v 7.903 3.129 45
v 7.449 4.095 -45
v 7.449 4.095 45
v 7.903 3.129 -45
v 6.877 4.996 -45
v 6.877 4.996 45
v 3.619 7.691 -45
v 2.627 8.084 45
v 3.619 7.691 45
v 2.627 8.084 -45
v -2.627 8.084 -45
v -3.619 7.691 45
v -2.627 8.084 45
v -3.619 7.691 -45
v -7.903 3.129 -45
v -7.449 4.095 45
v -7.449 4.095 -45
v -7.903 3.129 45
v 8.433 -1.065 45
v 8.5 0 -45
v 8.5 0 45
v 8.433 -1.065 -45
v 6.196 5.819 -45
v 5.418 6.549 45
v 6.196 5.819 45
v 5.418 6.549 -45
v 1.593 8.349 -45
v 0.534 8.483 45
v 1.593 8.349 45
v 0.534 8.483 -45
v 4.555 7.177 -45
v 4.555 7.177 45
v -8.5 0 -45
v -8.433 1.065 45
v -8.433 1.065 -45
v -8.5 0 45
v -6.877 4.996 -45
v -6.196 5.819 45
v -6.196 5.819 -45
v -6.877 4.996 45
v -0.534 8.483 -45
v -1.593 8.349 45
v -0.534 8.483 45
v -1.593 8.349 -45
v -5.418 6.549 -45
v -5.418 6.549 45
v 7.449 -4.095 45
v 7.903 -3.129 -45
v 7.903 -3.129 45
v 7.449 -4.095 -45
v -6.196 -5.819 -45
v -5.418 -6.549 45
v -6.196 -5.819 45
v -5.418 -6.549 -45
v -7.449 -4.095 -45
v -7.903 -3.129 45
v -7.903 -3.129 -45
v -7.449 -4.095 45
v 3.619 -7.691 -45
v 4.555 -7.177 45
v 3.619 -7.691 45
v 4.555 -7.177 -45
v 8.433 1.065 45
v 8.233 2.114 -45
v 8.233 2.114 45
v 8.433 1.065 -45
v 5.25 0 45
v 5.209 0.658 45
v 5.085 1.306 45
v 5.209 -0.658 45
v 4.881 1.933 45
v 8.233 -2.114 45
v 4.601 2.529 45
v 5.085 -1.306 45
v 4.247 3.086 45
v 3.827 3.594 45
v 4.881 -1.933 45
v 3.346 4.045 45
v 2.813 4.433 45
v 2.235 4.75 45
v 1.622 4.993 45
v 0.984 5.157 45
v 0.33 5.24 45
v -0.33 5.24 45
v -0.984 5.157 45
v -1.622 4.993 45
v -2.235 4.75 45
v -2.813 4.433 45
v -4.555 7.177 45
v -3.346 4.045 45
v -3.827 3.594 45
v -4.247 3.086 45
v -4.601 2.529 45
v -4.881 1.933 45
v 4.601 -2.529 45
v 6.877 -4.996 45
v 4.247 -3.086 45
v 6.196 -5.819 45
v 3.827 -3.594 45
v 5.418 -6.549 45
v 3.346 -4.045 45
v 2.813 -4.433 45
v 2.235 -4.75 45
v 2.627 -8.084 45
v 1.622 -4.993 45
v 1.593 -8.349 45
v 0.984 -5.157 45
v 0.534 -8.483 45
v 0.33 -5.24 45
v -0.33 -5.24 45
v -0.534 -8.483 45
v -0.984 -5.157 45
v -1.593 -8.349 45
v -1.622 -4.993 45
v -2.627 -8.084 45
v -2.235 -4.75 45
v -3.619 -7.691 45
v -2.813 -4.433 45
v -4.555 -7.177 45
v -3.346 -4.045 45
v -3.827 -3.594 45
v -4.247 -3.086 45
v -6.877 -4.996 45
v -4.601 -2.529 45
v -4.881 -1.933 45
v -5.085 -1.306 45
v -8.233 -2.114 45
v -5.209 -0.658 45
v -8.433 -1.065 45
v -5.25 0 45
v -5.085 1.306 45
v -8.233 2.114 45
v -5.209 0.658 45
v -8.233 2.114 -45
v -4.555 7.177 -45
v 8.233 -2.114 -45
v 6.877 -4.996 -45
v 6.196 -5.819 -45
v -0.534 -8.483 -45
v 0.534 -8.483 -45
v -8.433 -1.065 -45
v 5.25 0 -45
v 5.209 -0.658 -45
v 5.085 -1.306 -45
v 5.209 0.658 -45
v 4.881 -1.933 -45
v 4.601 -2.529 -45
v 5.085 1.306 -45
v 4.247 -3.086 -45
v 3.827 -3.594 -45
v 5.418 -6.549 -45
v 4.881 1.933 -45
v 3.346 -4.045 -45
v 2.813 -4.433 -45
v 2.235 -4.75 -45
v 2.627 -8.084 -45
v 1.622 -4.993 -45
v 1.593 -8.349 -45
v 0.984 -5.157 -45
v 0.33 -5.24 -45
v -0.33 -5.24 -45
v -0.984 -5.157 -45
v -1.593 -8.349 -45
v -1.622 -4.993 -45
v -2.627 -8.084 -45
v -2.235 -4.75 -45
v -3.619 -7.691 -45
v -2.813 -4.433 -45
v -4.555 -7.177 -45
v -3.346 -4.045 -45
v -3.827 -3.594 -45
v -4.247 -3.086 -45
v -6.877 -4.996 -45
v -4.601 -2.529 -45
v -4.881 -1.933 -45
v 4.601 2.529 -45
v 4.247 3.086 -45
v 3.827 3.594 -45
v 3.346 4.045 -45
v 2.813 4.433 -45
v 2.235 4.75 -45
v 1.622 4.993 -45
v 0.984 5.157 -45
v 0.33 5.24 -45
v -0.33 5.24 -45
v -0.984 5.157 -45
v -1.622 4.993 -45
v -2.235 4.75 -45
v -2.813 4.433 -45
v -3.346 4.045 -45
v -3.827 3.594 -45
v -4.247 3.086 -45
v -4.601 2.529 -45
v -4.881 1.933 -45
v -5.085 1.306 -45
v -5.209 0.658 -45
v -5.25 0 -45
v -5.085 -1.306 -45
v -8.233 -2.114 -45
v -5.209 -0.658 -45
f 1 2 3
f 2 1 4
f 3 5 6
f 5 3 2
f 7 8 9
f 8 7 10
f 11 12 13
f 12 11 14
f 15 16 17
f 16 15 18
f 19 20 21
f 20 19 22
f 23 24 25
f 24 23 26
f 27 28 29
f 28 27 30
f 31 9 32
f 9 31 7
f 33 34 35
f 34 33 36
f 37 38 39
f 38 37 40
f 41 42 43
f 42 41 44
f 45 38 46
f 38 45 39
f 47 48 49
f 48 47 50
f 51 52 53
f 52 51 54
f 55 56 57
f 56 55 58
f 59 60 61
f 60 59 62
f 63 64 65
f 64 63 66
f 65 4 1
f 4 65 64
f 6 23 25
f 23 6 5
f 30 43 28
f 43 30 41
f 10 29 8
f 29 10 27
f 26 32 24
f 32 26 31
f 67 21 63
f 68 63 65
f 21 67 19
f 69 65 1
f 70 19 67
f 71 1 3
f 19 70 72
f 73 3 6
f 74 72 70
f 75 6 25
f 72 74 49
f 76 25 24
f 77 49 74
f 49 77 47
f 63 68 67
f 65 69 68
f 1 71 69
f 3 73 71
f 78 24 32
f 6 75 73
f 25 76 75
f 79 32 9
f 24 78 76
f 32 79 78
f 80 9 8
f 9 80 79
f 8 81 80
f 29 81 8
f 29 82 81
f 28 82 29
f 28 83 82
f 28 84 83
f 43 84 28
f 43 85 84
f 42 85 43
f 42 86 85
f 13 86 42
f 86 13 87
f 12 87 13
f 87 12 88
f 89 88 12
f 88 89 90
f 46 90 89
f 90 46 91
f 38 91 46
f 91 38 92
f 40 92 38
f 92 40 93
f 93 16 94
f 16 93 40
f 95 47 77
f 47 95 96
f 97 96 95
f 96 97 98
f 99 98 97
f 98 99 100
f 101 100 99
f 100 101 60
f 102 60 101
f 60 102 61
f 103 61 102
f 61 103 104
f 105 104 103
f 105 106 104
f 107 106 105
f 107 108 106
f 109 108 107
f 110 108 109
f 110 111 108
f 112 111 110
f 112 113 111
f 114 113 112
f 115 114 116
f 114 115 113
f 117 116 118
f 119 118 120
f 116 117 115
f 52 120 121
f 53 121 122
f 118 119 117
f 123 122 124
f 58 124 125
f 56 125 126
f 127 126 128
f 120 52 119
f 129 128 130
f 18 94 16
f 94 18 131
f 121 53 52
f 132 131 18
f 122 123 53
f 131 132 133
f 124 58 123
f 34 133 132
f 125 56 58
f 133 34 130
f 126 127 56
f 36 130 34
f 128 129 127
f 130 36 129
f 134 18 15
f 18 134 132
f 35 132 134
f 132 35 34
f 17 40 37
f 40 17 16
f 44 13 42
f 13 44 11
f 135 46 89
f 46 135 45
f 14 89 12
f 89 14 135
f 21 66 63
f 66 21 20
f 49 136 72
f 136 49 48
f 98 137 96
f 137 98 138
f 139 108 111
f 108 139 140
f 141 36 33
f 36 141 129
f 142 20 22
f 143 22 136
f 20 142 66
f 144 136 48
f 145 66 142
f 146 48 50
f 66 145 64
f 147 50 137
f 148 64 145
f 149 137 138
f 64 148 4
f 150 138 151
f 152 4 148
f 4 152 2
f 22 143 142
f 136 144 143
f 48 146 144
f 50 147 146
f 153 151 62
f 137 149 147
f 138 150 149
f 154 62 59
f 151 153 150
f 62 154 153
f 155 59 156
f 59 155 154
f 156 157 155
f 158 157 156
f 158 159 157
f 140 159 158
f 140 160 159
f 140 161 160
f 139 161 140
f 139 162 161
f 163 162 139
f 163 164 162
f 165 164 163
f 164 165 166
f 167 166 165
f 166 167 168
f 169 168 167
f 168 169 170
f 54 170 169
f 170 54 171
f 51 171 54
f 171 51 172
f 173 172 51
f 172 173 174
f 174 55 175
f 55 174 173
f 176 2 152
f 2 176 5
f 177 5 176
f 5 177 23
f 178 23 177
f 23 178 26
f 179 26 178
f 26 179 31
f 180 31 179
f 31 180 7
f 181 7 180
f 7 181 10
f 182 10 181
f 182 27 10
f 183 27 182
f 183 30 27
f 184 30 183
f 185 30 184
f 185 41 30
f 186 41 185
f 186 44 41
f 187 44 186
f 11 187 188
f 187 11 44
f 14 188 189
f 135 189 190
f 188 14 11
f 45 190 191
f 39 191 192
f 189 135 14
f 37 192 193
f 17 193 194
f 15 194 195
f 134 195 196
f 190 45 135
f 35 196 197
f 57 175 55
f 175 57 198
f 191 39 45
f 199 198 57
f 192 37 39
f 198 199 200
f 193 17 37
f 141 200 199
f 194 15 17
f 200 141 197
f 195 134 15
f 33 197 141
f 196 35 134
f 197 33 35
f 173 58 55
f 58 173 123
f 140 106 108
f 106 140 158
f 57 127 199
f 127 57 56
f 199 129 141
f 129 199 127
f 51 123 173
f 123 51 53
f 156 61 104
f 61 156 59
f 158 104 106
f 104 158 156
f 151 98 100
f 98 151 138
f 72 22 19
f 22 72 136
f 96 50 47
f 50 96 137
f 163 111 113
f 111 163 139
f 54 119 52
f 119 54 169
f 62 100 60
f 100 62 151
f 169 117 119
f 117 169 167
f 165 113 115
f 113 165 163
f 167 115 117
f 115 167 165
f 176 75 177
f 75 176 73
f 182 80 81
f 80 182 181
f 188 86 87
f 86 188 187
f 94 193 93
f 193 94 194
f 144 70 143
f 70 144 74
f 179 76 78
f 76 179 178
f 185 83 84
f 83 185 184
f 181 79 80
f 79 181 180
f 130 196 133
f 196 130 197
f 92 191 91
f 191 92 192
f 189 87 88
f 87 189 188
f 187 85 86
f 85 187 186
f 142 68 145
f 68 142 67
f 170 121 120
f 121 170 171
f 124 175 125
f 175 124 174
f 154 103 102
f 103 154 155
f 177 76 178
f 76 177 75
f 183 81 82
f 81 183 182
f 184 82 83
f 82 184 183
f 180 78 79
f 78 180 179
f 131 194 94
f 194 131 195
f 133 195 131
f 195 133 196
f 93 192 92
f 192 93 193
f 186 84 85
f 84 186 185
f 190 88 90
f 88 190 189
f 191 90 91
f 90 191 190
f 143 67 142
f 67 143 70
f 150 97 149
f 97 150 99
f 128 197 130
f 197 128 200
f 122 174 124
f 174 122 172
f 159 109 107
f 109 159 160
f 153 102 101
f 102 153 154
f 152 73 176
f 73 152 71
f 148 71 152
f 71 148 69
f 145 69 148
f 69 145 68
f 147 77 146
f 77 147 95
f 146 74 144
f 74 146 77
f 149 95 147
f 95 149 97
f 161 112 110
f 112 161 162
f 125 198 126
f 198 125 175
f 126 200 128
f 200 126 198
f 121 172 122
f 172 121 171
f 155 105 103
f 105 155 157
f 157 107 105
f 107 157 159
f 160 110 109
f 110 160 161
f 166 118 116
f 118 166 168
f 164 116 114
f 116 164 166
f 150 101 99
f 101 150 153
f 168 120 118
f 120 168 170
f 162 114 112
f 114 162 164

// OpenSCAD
$fn = 50;


difference() {
	union() {
		translate(v = [0, 0, -45.0000000000]) {
			cylinder(h = 90, r = 8.5000000000);
		}
	}
	union() {
		translate(v = [0, 0, -100.0000000000]) {
			cylinder(h = 200, r = 5.2500000000);
		}
	}
}
